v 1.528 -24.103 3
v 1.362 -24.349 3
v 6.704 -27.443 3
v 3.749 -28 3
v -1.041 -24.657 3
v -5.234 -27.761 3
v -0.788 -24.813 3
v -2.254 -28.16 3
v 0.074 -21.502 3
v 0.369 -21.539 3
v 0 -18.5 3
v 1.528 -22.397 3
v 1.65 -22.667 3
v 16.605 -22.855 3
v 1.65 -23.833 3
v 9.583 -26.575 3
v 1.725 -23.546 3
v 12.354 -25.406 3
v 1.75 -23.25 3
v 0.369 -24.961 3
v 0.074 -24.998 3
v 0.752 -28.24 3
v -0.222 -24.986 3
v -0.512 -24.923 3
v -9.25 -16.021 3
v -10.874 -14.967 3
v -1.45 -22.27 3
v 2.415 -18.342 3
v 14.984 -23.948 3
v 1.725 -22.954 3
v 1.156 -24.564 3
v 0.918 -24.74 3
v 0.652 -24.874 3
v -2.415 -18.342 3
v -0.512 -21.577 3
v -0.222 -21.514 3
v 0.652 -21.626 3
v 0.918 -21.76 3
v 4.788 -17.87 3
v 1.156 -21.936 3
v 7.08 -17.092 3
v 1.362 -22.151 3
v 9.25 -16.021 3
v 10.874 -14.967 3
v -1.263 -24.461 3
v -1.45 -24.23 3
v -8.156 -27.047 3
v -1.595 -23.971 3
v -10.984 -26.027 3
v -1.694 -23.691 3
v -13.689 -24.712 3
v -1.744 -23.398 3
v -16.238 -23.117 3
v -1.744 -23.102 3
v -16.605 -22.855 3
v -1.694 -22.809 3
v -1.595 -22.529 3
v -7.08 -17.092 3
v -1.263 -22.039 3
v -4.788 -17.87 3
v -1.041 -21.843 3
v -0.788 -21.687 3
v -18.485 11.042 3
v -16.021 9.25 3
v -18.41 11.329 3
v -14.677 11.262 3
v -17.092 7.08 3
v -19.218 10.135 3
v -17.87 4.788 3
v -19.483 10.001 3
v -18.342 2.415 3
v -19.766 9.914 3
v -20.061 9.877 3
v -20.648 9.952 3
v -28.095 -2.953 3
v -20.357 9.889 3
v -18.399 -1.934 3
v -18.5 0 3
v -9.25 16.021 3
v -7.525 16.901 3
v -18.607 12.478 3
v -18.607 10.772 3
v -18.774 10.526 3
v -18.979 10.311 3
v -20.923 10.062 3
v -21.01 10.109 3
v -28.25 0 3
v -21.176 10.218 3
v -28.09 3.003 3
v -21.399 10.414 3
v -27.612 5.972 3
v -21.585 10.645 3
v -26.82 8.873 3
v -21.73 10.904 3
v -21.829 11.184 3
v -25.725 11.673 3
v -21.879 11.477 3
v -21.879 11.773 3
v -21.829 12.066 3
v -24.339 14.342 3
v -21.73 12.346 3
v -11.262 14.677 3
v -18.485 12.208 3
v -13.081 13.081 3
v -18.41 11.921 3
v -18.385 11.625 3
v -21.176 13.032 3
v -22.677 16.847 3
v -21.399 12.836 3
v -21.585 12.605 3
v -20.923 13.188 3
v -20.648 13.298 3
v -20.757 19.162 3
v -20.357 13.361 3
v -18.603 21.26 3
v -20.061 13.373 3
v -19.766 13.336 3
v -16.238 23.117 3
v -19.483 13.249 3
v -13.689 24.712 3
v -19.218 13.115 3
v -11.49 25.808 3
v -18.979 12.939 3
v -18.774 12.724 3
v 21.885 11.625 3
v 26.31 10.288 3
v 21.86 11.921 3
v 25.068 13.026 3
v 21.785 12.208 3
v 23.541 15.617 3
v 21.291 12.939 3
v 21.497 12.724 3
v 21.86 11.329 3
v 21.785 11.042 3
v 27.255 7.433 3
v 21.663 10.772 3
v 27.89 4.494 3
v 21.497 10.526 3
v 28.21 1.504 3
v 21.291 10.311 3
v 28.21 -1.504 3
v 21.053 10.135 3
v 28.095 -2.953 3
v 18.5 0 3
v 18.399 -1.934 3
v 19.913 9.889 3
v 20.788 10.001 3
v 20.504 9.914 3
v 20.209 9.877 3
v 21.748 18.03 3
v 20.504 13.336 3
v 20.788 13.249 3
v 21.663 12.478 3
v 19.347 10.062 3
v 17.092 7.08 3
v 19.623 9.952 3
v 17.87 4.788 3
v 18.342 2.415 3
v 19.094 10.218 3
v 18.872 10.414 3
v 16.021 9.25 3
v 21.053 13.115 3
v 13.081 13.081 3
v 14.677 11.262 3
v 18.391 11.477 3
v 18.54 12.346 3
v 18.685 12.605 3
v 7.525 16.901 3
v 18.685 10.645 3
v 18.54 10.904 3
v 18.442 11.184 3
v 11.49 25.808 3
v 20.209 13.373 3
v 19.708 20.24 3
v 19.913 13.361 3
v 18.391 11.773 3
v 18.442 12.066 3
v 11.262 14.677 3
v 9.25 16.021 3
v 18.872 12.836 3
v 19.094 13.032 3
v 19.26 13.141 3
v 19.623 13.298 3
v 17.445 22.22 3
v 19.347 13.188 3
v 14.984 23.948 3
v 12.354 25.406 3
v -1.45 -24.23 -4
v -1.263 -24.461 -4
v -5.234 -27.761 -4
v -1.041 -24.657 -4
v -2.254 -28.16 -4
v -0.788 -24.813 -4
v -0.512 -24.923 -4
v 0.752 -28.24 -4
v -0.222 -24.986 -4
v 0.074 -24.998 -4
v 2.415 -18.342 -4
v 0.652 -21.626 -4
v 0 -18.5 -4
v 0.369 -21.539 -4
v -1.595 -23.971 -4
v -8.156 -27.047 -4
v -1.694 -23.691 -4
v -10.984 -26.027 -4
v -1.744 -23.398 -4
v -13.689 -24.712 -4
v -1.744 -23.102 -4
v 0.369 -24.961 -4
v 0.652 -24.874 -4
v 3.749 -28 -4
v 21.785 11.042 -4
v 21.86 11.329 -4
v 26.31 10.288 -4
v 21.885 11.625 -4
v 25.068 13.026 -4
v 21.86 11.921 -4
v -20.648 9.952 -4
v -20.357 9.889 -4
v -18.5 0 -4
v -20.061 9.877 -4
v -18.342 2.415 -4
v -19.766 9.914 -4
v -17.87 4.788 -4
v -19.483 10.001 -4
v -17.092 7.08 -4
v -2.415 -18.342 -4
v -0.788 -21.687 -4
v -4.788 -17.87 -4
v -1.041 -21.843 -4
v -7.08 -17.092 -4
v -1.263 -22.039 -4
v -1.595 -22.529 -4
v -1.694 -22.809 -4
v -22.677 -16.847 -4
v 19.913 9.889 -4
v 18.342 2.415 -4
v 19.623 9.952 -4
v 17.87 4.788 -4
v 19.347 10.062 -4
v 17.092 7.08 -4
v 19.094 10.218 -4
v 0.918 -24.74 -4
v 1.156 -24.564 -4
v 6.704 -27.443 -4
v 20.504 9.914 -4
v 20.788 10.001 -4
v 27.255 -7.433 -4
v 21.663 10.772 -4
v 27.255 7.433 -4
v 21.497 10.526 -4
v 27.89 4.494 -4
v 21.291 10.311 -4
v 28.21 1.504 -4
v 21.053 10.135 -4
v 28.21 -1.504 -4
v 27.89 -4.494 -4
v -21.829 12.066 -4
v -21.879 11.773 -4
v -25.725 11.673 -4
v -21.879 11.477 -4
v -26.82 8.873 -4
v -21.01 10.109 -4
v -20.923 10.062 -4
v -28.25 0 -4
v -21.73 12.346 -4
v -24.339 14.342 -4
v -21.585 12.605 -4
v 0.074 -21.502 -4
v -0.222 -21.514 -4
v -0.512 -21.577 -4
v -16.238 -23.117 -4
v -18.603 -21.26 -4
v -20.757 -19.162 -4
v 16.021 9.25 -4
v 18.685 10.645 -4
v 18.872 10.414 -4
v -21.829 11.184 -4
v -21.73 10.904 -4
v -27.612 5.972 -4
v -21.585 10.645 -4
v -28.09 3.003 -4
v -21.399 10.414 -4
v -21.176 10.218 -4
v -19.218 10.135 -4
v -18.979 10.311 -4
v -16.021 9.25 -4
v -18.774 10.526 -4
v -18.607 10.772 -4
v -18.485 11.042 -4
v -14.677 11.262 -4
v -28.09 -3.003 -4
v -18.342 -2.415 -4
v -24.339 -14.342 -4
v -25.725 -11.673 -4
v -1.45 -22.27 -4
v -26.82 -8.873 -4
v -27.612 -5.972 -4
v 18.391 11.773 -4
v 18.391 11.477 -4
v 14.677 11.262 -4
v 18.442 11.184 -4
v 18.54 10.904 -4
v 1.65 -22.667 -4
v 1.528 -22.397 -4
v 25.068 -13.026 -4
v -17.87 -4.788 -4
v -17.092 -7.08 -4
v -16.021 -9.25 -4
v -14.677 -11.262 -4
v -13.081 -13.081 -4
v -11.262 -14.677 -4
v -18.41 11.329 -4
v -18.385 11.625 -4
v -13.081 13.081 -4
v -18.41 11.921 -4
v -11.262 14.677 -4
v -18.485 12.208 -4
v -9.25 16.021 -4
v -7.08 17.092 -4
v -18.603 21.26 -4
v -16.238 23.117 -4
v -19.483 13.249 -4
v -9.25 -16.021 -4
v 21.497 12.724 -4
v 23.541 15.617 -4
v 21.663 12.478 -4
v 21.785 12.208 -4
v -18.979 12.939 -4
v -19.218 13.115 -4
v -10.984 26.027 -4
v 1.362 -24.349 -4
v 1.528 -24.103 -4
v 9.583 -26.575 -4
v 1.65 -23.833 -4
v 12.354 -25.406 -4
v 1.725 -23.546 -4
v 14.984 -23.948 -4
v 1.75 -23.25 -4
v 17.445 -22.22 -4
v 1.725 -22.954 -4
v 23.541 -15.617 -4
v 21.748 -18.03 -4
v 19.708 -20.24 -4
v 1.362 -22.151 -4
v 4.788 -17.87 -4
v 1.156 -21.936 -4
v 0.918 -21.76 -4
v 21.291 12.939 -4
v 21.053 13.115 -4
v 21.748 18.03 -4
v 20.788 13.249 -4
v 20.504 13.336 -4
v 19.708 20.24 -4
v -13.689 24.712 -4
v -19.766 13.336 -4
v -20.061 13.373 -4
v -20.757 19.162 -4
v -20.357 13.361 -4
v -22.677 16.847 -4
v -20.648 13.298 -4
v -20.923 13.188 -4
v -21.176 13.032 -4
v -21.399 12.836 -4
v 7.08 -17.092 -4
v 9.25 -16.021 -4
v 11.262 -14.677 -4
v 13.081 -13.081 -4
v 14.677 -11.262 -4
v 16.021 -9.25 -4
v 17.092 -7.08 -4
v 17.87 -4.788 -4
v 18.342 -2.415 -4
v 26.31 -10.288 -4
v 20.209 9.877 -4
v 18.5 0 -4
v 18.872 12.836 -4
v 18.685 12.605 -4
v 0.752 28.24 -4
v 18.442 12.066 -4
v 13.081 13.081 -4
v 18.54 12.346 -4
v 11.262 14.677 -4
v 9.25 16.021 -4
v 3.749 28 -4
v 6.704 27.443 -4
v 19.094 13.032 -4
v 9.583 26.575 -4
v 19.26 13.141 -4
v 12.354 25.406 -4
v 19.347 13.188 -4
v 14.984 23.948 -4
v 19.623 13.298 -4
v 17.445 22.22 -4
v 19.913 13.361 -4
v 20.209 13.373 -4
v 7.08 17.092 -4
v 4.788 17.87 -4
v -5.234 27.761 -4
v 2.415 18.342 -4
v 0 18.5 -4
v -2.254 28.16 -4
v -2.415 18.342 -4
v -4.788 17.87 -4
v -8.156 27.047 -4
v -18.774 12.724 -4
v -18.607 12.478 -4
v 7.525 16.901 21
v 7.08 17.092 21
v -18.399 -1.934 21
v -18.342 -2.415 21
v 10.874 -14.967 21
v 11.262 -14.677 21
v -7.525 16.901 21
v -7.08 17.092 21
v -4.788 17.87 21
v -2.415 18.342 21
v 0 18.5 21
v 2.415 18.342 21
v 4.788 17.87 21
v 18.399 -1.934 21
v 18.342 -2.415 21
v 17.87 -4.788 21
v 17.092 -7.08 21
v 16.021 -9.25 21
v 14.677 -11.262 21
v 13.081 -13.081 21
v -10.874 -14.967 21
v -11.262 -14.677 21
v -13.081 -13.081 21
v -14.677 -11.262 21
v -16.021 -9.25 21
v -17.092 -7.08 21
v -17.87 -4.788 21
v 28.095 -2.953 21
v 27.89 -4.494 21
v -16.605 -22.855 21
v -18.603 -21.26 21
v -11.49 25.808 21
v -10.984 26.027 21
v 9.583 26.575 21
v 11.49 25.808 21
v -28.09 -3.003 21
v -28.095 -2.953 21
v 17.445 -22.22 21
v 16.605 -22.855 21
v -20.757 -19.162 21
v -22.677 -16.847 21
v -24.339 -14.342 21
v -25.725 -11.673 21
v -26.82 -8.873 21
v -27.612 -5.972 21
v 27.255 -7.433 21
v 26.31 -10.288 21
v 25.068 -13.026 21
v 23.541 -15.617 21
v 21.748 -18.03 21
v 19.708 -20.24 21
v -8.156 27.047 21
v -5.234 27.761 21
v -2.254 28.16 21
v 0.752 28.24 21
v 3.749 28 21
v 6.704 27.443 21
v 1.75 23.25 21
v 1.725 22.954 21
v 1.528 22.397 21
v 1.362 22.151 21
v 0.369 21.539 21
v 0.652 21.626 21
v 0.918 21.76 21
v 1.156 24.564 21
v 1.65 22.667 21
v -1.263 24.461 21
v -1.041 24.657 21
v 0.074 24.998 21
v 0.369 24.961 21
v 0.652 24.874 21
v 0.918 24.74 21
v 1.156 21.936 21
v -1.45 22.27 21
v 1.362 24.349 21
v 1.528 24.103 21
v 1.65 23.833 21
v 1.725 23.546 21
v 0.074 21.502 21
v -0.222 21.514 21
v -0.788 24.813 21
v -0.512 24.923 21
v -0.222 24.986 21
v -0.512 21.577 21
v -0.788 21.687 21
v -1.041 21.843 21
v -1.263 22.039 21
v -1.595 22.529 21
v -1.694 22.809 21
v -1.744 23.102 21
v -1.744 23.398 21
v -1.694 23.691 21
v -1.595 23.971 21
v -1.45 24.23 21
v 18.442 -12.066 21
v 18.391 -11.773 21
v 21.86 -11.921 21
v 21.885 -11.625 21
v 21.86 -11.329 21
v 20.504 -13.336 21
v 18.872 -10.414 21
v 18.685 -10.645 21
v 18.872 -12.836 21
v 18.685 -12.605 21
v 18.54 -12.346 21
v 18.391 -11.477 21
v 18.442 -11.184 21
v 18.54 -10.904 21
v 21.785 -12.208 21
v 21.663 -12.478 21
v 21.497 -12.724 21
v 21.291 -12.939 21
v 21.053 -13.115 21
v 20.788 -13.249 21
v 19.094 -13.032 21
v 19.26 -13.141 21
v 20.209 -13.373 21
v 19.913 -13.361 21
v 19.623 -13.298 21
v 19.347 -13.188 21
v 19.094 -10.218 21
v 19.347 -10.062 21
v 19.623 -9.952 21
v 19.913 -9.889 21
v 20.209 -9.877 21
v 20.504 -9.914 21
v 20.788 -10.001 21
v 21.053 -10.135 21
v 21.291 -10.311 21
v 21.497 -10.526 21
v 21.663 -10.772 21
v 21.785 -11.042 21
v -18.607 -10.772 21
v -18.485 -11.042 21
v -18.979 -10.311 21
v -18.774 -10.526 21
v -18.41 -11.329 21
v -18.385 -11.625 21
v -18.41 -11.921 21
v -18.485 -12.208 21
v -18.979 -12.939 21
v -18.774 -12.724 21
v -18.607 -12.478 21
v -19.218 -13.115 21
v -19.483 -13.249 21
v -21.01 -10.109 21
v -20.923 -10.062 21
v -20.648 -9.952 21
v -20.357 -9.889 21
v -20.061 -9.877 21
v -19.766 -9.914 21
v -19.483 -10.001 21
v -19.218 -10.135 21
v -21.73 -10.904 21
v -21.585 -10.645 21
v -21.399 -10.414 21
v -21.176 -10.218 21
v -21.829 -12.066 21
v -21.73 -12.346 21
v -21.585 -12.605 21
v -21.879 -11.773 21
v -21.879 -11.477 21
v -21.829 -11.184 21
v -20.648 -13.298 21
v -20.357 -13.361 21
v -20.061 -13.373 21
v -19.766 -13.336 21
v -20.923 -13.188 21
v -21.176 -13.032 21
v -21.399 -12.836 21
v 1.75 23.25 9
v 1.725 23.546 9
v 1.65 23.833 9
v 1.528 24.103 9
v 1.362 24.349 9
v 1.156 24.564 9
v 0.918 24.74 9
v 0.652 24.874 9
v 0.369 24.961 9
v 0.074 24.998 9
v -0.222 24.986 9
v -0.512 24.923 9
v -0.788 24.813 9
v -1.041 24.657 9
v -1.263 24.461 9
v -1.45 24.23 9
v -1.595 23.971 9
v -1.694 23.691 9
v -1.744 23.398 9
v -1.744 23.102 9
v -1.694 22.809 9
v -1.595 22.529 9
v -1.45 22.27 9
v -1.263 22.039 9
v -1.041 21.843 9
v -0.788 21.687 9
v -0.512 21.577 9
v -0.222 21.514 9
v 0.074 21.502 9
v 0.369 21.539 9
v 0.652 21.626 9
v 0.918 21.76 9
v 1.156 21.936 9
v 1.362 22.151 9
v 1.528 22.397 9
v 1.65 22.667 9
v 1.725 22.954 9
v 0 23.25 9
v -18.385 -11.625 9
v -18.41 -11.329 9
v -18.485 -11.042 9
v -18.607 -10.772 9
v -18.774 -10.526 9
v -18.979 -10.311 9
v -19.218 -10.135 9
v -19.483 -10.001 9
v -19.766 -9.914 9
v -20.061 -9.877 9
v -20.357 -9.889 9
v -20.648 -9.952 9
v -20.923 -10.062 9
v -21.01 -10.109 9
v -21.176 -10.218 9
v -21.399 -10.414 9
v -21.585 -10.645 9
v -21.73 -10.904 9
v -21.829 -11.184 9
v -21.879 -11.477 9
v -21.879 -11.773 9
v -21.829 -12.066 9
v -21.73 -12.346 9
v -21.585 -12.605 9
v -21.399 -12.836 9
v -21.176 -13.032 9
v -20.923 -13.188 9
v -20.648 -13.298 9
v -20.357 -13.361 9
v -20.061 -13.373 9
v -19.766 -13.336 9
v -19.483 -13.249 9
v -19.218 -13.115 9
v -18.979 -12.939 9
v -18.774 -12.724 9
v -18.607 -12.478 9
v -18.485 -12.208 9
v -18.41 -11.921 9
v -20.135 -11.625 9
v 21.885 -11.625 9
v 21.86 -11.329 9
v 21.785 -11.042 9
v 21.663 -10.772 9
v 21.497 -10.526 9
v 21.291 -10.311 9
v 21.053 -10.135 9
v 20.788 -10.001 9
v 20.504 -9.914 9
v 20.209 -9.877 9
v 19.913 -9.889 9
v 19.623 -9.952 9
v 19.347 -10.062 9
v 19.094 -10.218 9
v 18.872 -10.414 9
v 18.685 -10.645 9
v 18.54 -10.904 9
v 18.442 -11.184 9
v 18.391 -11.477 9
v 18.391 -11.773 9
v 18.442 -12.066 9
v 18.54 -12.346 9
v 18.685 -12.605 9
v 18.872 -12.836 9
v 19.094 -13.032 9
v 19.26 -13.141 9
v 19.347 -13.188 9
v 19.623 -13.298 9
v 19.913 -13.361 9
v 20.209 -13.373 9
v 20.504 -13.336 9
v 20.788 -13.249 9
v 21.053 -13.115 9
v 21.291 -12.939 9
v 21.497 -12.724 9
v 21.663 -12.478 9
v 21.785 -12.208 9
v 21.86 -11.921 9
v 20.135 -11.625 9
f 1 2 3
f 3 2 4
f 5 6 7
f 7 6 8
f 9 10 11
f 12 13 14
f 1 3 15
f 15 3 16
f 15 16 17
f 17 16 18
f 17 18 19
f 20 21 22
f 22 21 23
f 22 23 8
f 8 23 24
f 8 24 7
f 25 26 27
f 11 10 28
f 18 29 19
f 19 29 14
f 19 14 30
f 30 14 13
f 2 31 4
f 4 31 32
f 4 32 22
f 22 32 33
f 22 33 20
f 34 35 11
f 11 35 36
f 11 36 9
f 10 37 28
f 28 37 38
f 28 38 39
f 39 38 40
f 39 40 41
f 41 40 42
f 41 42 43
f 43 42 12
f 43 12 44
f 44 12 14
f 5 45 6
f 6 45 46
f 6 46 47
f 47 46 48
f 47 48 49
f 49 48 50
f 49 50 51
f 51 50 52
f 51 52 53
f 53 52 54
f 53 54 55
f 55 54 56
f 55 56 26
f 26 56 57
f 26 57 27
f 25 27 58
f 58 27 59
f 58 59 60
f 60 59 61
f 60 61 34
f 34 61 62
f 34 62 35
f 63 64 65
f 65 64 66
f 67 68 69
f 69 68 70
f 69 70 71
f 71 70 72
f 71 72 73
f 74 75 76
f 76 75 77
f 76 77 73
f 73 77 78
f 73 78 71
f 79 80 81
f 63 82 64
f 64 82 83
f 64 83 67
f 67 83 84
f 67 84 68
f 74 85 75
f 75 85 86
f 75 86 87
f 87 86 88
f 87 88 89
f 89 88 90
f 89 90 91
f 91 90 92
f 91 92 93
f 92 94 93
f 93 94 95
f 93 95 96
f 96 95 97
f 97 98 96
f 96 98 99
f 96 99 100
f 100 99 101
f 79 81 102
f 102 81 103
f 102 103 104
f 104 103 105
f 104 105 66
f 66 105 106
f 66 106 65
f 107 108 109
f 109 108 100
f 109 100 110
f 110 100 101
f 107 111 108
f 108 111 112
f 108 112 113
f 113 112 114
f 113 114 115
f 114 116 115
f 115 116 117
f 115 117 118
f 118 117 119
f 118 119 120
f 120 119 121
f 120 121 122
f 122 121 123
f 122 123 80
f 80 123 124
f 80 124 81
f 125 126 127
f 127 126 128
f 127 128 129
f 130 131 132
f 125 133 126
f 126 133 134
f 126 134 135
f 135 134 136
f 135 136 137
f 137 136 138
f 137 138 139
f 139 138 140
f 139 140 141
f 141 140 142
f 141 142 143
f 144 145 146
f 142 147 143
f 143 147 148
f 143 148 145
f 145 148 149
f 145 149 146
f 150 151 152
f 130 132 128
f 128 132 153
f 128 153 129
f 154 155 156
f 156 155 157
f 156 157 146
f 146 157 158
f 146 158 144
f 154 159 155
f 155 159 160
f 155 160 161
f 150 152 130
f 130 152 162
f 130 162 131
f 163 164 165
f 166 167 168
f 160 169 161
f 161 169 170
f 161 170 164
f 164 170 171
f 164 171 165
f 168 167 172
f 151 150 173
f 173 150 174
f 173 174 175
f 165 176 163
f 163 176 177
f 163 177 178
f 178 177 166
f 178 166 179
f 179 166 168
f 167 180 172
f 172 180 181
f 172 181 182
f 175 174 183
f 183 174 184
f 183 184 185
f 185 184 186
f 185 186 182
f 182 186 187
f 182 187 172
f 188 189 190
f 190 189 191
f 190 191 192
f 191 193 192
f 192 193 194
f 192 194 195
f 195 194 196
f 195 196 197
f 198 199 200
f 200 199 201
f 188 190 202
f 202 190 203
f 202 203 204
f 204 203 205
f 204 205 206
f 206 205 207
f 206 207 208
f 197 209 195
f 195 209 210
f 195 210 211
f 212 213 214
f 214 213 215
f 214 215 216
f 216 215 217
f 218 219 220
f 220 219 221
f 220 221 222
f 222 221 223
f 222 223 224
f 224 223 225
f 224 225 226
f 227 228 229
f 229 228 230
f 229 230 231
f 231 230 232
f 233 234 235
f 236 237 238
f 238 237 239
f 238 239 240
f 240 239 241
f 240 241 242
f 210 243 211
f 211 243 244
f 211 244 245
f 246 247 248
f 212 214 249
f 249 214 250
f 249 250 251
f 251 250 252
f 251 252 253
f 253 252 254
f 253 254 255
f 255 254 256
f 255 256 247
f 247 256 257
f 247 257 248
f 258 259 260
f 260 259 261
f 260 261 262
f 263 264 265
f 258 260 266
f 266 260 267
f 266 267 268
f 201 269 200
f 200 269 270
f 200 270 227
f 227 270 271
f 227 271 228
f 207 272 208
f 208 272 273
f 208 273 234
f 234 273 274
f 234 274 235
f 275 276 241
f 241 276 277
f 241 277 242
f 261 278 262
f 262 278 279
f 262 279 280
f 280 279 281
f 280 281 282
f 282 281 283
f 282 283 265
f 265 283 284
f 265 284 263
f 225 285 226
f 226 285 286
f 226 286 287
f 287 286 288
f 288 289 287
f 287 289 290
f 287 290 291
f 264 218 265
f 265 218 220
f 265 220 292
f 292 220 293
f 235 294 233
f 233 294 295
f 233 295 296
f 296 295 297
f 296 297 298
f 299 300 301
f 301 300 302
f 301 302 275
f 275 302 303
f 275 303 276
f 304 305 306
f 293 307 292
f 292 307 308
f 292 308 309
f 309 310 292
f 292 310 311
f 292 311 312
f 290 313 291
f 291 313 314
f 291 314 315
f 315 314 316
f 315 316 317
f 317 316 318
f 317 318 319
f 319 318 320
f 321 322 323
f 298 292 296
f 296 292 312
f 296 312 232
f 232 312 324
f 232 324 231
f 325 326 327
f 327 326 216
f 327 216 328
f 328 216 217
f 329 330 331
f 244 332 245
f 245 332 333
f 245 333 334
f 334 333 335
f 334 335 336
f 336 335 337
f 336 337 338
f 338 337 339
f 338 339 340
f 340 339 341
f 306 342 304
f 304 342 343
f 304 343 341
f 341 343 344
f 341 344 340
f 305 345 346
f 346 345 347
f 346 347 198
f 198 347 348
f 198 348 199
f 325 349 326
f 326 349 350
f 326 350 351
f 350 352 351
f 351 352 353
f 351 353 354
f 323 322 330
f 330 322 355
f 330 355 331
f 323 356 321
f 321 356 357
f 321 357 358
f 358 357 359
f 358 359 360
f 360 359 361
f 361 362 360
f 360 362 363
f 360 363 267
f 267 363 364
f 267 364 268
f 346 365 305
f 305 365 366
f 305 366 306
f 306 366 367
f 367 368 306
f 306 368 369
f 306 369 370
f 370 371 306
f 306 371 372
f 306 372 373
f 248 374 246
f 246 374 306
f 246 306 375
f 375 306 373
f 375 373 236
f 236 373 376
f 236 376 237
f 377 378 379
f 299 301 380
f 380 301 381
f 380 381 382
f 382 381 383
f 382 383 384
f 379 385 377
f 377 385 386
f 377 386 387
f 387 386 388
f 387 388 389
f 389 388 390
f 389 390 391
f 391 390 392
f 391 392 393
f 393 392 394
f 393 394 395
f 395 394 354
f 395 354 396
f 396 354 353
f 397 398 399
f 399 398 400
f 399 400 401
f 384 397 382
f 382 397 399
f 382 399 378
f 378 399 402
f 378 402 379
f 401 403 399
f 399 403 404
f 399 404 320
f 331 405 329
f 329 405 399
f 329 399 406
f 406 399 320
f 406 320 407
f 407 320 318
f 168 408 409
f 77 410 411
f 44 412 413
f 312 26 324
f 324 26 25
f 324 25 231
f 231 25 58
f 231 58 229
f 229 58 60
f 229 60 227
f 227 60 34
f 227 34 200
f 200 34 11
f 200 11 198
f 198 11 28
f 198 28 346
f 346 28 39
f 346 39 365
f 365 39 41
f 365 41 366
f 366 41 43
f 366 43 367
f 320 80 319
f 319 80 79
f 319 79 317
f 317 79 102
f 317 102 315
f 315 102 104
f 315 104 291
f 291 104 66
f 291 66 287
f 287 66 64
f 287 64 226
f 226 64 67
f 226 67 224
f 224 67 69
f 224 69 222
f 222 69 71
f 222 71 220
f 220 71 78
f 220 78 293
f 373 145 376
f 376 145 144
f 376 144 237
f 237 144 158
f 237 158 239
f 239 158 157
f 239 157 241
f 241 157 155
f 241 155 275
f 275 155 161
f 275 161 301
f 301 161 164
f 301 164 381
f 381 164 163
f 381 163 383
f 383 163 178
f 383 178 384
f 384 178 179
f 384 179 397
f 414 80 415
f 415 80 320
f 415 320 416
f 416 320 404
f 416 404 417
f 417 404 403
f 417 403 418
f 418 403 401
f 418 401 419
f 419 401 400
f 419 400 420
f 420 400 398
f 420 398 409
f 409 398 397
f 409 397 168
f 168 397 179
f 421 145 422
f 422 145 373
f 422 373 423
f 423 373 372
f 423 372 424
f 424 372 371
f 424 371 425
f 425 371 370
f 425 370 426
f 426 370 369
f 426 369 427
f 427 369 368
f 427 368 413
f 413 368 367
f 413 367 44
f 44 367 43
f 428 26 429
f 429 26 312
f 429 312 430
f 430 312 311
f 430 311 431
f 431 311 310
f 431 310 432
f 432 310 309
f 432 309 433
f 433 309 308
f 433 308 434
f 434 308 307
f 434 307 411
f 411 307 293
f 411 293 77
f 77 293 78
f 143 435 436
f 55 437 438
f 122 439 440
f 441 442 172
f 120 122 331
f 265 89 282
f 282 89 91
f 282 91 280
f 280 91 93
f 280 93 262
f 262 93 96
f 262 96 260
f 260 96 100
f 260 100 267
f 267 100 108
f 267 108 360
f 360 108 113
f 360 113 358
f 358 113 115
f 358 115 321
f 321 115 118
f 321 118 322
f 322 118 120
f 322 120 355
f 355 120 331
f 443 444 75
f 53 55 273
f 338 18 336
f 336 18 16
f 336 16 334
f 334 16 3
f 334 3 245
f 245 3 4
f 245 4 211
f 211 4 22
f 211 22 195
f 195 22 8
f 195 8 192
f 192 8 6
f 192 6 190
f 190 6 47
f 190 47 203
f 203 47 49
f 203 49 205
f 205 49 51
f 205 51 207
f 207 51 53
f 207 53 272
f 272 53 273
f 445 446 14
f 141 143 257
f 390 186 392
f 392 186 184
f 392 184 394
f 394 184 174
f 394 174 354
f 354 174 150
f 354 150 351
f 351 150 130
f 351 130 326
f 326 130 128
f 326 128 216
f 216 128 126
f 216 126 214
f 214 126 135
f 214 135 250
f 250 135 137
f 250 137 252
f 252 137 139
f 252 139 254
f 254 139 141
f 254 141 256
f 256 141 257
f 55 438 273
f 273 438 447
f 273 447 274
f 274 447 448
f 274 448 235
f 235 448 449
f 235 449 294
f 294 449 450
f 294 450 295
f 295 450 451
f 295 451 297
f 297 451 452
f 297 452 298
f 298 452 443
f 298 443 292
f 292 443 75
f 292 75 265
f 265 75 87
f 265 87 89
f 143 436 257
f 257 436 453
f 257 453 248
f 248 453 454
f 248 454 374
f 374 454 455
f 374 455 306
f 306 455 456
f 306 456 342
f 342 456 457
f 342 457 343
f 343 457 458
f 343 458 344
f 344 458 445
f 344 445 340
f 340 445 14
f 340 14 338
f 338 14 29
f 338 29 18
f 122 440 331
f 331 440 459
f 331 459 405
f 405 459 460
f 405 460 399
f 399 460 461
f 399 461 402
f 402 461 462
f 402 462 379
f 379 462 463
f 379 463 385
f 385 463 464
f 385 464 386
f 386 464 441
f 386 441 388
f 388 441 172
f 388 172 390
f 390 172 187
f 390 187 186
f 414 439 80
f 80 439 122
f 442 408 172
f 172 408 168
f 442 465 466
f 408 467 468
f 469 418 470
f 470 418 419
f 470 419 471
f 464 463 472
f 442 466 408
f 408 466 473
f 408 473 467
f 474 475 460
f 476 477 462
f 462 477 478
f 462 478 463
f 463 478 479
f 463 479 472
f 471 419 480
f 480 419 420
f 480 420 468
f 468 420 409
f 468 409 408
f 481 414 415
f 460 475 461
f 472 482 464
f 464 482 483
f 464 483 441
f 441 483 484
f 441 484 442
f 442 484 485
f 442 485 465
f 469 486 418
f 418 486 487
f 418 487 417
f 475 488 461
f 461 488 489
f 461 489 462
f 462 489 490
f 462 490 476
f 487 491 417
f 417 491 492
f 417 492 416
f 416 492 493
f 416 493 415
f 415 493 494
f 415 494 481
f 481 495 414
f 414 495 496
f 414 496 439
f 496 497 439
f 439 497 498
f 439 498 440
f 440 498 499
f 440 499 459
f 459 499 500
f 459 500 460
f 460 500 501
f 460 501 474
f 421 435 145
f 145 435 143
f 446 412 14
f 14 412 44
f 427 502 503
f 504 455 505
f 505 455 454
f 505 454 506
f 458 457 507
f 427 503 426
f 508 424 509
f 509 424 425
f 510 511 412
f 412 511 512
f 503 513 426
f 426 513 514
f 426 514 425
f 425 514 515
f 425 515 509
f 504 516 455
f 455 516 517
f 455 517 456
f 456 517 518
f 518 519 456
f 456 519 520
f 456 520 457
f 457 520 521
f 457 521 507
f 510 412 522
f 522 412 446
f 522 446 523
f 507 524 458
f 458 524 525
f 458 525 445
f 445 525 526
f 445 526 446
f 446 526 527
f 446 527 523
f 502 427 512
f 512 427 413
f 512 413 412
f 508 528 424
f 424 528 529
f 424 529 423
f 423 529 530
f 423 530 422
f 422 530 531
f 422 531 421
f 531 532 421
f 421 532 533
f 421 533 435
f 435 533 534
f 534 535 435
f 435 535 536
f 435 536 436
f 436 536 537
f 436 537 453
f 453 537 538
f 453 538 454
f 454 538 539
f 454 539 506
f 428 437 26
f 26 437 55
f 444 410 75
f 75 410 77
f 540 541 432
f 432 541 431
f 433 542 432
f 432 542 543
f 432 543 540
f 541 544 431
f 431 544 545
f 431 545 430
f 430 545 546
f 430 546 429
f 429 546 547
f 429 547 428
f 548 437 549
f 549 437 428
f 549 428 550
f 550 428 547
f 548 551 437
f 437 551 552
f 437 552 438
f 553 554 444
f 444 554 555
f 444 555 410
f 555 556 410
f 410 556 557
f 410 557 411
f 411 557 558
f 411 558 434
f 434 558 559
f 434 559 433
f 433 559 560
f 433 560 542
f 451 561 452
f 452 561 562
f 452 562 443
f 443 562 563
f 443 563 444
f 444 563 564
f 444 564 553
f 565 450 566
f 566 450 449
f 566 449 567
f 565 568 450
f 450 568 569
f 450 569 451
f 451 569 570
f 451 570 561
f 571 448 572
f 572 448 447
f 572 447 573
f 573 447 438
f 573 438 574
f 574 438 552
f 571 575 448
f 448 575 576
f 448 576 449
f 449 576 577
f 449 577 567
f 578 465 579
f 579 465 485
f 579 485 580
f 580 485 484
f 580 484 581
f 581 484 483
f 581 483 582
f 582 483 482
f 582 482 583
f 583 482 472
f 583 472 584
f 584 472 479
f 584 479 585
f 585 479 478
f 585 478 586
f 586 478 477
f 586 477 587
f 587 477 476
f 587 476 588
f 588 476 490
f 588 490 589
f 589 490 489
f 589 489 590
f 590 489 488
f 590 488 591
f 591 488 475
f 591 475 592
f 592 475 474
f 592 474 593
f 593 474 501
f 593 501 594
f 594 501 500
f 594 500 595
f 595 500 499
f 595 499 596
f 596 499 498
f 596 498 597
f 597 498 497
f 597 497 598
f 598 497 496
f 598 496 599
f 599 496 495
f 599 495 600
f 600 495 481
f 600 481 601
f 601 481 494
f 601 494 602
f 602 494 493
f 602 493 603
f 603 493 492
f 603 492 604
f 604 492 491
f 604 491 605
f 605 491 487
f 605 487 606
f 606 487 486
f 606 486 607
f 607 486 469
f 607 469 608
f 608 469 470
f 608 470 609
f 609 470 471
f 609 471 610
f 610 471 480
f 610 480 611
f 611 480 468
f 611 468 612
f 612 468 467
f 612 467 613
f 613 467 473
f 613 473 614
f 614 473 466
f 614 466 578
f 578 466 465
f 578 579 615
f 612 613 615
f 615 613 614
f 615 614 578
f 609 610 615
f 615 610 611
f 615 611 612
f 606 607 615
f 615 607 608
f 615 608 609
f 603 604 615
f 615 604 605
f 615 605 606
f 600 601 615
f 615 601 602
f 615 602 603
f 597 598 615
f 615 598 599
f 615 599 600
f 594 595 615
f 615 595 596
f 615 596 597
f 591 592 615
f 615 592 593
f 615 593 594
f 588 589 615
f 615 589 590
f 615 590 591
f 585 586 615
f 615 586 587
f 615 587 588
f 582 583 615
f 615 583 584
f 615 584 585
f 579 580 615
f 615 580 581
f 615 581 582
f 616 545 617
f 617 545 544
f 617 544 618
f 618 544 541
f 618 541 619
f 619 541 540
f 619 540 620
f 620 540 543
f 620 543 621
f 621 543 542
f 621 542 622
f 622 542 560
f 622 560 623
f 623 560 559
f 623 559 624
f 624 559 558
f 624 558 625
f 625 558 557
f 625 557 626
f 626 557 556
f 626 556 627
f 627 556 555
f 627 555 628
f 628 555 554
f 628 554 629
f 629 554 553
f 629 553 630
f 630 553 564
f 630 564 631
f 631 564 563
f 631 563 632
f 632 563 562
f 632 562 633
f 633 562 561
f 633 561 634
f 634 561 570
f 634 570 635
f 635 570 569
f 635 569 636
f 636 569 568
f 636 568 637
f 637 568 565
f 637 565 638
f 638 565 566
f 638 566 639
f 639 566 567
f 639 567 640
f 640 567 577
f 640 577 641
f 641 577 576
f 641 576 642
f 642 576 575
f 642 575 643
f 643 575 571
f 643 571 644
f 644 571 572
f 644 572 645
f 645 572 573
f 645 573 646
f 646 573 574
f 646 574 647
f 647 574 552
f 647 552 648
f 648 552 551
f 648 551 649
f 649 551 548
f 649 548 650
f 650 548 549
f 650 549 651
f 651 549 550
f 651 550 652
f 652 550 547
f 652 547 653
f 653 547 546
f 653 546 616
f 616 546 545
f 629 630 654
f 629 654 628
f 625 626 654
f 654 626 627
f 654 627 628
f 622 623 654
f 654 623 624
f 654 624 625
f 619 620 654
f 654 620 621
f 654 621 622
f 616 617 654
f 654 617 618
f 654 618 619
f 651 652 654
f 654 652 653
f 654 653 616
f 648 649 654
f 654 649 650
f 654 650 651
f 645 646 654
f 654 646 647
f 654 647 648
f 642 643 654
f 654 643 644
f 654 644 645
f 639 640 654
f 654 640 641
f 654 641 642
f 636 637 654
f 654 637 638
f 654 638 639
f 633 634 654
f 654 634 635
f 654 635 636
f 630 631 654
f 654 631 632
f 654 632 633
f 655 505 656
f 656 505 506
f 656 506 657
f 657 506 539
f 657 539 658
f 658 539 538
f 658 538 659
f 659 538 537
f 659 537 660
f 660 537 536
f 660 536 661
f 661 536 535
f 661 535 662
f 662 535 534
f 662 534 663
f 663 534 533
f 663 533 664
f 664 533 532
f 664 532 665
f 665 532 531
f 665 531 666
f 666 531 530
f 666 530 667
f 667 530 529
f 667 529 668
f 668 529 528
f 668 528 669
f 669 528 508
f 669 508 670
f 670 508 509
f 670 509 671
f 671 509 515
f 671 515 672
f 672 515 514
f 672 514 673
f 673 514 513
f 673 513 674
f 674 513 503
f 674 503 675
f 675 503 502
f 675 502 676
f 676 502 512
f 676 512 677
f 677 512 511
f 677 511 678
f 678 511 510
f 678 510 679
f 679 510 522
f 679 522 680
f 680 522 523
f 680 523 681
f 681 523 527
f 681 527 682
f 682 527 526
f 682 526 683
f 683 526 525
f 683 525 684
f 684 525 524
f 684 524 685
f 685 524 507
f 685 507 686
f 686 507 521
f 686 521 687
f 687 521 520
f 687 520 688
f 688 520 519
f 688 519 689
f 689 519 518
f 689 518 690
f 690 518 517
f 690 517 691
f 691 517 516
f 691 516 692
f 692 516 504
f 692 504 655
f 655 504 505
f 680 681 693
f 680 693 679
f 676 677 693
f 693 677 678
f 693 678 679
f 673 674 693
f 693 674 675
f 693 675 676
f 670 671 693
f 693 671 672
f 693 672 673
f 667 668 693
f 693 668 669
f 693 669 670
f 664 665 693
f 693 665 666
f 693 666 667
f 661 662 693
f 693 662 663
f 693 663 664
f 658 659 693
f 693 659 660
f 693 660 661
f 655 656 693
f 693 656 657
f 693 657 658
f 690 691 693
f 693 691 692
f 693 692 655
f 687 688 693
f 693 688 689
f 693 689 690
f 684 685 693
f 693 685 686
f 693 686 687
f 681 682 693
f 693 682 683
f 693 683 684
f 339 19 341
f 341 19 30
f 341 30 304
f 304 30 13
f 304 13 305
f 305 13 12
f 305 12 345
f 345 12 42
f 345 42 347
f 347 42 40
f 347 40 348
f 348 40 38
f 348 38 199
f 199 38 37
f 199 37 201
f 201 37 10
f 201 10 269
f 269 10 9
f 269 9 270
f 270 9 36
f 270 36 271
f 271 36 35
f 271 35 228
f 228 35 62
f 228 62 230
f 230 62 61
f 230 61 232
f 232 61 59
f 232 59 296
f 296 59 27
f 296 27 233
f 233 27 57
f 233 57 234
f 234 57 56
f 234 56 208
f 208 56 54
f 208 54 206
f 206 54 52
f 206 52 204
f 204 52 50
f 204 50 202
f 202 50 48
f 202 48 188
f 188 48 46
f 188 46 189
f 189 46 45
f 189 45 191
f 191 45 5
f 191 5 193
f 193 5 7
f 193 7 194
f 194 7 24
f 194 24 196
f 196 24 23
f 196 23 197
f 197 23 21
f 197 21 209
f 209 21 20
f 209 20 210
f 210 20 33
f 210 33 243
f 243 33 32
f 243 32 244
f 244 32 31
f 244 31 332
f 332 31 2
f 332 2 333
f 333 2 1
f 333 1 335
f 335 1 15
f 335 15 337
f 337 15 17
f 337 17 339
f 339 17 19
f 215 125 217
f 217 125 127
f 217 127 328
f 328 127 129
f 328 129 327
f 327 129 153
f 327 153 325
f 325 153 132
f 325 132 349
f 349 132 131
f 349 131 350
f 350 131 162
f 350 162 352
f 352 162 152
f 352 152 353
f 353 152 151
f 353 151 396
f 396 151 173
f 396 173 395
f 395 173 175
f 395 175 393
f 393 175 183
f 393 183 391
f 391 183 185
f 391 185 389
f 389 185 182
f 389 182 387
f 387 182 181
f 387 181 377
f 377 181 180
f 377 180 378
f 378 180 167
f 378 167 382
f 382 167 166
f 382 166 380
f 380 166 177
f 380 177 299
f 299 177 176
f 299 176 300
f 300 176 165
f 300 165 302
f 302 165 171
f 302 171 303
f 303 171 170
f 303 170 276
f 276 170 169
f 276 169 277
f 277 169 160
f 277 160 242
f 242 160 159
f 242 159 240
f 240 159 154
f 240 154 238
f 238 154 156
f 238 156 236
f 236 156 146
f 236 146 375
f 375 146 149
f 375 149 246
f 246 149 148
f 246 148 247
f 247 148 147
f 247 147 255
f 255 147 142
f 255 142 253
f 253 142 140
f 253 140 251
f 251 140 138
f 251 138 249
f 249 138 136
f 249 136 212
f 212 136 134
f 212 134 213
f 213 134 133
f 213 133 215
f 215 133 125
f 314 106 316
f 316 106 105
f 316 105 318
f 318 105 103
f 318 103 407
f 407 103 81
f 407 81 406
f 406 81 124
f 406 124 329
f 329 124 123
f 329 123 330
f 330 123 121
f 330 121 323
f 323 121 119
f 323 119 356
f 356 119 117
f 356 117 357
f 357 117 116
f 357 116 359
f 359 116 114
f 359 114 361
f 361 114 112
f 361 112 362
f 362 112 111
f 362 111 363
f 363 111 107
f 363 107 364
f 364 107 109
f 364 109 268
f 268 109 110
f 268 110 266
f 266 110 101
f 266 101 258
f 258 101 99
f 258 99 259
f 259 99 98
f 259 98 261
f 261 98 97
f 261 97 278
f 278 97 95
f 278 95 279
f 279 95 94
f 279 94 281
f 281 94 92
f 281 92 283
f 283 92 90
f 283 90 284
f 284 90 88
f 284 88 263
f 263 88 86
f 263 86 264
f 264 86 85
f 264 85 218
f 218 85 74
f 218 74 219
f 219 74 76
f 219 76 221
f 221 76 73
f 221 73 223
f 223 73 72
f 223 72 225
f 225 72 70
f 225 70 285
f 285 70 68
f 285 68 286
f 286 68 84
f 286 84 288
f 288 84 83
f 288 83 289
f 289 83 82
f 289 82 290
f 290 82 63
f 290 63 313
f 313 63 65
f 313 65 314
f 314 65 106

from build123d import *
from build123d.topology import SkipClean

# Parameters (mm, degrees)
BOSS_EXTRUDE1_DEPTH = 18
CIRPATTERN1_COUNT   = 3
SKETCH4_R           = 1.75
CUT_EXTRUDE1_DEPTH  = 12
CIRPATTERN2_COUNT   = 3
SKETCH5_R           = 1.75
CUT_EXTRUDE2_DEPTH  = 44.819230938
CIRPATTERN3_COUNT   = 3


with BuildPart() as part:
    # Sketch2 → Revolve1 (revolve)
    with BuildSketch(Plane(origin=(0, 0, 0), x_dir=(0, 0, -1), z_dir=(1, 0, 0))):
        Polygon((0, 28.25), (-3, 28.25), (-3, 18.5), (0, 18.5), (4, 18.5), (4, 28.25), align=None)
    revolve(axis=Axis((0, 0, 0), (0, 0, 1)))

    # Sketch3 → Boss-Extrude1 (add)
    with BuildSketch(Plane.XY.offset(3)):
        with BuildLine():
            Line((-7.524627897, 16.900590966), (-11.490310167, 25.807659178))
            ThreePointArc((-11.490310167, 25.807659178), (0, 28.25), (11.490310167, 25.807659178))
            Line((11.490310167, 25.807659178), (7.524627897, 16.900590966))
            ThreePointArc((7.524627897, 16.900590966), (0, 18.5), (-7.524627897, 16.900590966))
        make_face()
    boss_extrude1 = extrude(amount=BOSS_EXTRUDE1_DEPTH)

    # CirPattern1: Boss-Extrude1 ×3 about axis
    with SkipClean():  # the faces are left unmerged after this step: merging them gives an invalid solid
        cirpattern1_axis = Axis((0, 0, 3), (0, 0, -1))
        for i in range(1, CIRPATTERN1_COUNT):
            add(boss_extrude1.rotate(cirpattern1_axis, i * 360 / CIRPATTERN1_COUNT))

    # Sketch4 → Cut-Extrude1 (cut)
    with SkipClean():  # the faces are left unmerged after this step: merging them gives an invalid solid
        with BuildSketch(Plane.XY.offset(21)):
            with Locations((0, 23.25)):
                Circle(SKETCH4_R)
        cut_extrude1 = extrude(amount=-CUT_EXTRUDE1_DEPTH, mode=Mode.SUBTRACT)

    # CirPattern2: Cut-Extrude1 ×3 about axis
    with SkipClean():  # the faces are left unmerged after this step: merging them gives an invalid solid
        cirpattern2_axis = Axis((0, 0, -4), (0, 0, -1))
        for i in range(1, CIRPATTERN2_COUNT):
            add(cut_extrude1.rotate(cirpattern2_axis, i * 360 / CIRPATTERN2_COUNT), mode=Mode.SUBTRACT)

    # Sketch5 → Cut-Extrude2 (cut, through all)
    with SkipClean():  # the faces are left unmerged after this step: merging them gives an invalid solid
        with BuildSketch(Plane.XY.offset(3)):
            with Locations((0, -23.25)):
                Circle(SKETCH5_R)
        cut_extrude2 = extrude(amount=-CUT_EXTRUDE2_DEPTH, mode=Mode.SUBTRACT)

    # CirPattern3: Cut-Extrude2 ×3 about axis
    with SkipClean():  # the faces are left unmerged after this step: merging them gives an invalid solid
        cirpattern3_axis = Axis((0, 0, -4), (0, 0, -1))
        for i in range(1, CIRPATTERN3_COUNT):
            add(cut_extrude2.rotate(cirpattern3_axis, i * 360 / CIRPATTERN3_COUNT), mode=Mode.SUBTRACT)


solid = part.part
